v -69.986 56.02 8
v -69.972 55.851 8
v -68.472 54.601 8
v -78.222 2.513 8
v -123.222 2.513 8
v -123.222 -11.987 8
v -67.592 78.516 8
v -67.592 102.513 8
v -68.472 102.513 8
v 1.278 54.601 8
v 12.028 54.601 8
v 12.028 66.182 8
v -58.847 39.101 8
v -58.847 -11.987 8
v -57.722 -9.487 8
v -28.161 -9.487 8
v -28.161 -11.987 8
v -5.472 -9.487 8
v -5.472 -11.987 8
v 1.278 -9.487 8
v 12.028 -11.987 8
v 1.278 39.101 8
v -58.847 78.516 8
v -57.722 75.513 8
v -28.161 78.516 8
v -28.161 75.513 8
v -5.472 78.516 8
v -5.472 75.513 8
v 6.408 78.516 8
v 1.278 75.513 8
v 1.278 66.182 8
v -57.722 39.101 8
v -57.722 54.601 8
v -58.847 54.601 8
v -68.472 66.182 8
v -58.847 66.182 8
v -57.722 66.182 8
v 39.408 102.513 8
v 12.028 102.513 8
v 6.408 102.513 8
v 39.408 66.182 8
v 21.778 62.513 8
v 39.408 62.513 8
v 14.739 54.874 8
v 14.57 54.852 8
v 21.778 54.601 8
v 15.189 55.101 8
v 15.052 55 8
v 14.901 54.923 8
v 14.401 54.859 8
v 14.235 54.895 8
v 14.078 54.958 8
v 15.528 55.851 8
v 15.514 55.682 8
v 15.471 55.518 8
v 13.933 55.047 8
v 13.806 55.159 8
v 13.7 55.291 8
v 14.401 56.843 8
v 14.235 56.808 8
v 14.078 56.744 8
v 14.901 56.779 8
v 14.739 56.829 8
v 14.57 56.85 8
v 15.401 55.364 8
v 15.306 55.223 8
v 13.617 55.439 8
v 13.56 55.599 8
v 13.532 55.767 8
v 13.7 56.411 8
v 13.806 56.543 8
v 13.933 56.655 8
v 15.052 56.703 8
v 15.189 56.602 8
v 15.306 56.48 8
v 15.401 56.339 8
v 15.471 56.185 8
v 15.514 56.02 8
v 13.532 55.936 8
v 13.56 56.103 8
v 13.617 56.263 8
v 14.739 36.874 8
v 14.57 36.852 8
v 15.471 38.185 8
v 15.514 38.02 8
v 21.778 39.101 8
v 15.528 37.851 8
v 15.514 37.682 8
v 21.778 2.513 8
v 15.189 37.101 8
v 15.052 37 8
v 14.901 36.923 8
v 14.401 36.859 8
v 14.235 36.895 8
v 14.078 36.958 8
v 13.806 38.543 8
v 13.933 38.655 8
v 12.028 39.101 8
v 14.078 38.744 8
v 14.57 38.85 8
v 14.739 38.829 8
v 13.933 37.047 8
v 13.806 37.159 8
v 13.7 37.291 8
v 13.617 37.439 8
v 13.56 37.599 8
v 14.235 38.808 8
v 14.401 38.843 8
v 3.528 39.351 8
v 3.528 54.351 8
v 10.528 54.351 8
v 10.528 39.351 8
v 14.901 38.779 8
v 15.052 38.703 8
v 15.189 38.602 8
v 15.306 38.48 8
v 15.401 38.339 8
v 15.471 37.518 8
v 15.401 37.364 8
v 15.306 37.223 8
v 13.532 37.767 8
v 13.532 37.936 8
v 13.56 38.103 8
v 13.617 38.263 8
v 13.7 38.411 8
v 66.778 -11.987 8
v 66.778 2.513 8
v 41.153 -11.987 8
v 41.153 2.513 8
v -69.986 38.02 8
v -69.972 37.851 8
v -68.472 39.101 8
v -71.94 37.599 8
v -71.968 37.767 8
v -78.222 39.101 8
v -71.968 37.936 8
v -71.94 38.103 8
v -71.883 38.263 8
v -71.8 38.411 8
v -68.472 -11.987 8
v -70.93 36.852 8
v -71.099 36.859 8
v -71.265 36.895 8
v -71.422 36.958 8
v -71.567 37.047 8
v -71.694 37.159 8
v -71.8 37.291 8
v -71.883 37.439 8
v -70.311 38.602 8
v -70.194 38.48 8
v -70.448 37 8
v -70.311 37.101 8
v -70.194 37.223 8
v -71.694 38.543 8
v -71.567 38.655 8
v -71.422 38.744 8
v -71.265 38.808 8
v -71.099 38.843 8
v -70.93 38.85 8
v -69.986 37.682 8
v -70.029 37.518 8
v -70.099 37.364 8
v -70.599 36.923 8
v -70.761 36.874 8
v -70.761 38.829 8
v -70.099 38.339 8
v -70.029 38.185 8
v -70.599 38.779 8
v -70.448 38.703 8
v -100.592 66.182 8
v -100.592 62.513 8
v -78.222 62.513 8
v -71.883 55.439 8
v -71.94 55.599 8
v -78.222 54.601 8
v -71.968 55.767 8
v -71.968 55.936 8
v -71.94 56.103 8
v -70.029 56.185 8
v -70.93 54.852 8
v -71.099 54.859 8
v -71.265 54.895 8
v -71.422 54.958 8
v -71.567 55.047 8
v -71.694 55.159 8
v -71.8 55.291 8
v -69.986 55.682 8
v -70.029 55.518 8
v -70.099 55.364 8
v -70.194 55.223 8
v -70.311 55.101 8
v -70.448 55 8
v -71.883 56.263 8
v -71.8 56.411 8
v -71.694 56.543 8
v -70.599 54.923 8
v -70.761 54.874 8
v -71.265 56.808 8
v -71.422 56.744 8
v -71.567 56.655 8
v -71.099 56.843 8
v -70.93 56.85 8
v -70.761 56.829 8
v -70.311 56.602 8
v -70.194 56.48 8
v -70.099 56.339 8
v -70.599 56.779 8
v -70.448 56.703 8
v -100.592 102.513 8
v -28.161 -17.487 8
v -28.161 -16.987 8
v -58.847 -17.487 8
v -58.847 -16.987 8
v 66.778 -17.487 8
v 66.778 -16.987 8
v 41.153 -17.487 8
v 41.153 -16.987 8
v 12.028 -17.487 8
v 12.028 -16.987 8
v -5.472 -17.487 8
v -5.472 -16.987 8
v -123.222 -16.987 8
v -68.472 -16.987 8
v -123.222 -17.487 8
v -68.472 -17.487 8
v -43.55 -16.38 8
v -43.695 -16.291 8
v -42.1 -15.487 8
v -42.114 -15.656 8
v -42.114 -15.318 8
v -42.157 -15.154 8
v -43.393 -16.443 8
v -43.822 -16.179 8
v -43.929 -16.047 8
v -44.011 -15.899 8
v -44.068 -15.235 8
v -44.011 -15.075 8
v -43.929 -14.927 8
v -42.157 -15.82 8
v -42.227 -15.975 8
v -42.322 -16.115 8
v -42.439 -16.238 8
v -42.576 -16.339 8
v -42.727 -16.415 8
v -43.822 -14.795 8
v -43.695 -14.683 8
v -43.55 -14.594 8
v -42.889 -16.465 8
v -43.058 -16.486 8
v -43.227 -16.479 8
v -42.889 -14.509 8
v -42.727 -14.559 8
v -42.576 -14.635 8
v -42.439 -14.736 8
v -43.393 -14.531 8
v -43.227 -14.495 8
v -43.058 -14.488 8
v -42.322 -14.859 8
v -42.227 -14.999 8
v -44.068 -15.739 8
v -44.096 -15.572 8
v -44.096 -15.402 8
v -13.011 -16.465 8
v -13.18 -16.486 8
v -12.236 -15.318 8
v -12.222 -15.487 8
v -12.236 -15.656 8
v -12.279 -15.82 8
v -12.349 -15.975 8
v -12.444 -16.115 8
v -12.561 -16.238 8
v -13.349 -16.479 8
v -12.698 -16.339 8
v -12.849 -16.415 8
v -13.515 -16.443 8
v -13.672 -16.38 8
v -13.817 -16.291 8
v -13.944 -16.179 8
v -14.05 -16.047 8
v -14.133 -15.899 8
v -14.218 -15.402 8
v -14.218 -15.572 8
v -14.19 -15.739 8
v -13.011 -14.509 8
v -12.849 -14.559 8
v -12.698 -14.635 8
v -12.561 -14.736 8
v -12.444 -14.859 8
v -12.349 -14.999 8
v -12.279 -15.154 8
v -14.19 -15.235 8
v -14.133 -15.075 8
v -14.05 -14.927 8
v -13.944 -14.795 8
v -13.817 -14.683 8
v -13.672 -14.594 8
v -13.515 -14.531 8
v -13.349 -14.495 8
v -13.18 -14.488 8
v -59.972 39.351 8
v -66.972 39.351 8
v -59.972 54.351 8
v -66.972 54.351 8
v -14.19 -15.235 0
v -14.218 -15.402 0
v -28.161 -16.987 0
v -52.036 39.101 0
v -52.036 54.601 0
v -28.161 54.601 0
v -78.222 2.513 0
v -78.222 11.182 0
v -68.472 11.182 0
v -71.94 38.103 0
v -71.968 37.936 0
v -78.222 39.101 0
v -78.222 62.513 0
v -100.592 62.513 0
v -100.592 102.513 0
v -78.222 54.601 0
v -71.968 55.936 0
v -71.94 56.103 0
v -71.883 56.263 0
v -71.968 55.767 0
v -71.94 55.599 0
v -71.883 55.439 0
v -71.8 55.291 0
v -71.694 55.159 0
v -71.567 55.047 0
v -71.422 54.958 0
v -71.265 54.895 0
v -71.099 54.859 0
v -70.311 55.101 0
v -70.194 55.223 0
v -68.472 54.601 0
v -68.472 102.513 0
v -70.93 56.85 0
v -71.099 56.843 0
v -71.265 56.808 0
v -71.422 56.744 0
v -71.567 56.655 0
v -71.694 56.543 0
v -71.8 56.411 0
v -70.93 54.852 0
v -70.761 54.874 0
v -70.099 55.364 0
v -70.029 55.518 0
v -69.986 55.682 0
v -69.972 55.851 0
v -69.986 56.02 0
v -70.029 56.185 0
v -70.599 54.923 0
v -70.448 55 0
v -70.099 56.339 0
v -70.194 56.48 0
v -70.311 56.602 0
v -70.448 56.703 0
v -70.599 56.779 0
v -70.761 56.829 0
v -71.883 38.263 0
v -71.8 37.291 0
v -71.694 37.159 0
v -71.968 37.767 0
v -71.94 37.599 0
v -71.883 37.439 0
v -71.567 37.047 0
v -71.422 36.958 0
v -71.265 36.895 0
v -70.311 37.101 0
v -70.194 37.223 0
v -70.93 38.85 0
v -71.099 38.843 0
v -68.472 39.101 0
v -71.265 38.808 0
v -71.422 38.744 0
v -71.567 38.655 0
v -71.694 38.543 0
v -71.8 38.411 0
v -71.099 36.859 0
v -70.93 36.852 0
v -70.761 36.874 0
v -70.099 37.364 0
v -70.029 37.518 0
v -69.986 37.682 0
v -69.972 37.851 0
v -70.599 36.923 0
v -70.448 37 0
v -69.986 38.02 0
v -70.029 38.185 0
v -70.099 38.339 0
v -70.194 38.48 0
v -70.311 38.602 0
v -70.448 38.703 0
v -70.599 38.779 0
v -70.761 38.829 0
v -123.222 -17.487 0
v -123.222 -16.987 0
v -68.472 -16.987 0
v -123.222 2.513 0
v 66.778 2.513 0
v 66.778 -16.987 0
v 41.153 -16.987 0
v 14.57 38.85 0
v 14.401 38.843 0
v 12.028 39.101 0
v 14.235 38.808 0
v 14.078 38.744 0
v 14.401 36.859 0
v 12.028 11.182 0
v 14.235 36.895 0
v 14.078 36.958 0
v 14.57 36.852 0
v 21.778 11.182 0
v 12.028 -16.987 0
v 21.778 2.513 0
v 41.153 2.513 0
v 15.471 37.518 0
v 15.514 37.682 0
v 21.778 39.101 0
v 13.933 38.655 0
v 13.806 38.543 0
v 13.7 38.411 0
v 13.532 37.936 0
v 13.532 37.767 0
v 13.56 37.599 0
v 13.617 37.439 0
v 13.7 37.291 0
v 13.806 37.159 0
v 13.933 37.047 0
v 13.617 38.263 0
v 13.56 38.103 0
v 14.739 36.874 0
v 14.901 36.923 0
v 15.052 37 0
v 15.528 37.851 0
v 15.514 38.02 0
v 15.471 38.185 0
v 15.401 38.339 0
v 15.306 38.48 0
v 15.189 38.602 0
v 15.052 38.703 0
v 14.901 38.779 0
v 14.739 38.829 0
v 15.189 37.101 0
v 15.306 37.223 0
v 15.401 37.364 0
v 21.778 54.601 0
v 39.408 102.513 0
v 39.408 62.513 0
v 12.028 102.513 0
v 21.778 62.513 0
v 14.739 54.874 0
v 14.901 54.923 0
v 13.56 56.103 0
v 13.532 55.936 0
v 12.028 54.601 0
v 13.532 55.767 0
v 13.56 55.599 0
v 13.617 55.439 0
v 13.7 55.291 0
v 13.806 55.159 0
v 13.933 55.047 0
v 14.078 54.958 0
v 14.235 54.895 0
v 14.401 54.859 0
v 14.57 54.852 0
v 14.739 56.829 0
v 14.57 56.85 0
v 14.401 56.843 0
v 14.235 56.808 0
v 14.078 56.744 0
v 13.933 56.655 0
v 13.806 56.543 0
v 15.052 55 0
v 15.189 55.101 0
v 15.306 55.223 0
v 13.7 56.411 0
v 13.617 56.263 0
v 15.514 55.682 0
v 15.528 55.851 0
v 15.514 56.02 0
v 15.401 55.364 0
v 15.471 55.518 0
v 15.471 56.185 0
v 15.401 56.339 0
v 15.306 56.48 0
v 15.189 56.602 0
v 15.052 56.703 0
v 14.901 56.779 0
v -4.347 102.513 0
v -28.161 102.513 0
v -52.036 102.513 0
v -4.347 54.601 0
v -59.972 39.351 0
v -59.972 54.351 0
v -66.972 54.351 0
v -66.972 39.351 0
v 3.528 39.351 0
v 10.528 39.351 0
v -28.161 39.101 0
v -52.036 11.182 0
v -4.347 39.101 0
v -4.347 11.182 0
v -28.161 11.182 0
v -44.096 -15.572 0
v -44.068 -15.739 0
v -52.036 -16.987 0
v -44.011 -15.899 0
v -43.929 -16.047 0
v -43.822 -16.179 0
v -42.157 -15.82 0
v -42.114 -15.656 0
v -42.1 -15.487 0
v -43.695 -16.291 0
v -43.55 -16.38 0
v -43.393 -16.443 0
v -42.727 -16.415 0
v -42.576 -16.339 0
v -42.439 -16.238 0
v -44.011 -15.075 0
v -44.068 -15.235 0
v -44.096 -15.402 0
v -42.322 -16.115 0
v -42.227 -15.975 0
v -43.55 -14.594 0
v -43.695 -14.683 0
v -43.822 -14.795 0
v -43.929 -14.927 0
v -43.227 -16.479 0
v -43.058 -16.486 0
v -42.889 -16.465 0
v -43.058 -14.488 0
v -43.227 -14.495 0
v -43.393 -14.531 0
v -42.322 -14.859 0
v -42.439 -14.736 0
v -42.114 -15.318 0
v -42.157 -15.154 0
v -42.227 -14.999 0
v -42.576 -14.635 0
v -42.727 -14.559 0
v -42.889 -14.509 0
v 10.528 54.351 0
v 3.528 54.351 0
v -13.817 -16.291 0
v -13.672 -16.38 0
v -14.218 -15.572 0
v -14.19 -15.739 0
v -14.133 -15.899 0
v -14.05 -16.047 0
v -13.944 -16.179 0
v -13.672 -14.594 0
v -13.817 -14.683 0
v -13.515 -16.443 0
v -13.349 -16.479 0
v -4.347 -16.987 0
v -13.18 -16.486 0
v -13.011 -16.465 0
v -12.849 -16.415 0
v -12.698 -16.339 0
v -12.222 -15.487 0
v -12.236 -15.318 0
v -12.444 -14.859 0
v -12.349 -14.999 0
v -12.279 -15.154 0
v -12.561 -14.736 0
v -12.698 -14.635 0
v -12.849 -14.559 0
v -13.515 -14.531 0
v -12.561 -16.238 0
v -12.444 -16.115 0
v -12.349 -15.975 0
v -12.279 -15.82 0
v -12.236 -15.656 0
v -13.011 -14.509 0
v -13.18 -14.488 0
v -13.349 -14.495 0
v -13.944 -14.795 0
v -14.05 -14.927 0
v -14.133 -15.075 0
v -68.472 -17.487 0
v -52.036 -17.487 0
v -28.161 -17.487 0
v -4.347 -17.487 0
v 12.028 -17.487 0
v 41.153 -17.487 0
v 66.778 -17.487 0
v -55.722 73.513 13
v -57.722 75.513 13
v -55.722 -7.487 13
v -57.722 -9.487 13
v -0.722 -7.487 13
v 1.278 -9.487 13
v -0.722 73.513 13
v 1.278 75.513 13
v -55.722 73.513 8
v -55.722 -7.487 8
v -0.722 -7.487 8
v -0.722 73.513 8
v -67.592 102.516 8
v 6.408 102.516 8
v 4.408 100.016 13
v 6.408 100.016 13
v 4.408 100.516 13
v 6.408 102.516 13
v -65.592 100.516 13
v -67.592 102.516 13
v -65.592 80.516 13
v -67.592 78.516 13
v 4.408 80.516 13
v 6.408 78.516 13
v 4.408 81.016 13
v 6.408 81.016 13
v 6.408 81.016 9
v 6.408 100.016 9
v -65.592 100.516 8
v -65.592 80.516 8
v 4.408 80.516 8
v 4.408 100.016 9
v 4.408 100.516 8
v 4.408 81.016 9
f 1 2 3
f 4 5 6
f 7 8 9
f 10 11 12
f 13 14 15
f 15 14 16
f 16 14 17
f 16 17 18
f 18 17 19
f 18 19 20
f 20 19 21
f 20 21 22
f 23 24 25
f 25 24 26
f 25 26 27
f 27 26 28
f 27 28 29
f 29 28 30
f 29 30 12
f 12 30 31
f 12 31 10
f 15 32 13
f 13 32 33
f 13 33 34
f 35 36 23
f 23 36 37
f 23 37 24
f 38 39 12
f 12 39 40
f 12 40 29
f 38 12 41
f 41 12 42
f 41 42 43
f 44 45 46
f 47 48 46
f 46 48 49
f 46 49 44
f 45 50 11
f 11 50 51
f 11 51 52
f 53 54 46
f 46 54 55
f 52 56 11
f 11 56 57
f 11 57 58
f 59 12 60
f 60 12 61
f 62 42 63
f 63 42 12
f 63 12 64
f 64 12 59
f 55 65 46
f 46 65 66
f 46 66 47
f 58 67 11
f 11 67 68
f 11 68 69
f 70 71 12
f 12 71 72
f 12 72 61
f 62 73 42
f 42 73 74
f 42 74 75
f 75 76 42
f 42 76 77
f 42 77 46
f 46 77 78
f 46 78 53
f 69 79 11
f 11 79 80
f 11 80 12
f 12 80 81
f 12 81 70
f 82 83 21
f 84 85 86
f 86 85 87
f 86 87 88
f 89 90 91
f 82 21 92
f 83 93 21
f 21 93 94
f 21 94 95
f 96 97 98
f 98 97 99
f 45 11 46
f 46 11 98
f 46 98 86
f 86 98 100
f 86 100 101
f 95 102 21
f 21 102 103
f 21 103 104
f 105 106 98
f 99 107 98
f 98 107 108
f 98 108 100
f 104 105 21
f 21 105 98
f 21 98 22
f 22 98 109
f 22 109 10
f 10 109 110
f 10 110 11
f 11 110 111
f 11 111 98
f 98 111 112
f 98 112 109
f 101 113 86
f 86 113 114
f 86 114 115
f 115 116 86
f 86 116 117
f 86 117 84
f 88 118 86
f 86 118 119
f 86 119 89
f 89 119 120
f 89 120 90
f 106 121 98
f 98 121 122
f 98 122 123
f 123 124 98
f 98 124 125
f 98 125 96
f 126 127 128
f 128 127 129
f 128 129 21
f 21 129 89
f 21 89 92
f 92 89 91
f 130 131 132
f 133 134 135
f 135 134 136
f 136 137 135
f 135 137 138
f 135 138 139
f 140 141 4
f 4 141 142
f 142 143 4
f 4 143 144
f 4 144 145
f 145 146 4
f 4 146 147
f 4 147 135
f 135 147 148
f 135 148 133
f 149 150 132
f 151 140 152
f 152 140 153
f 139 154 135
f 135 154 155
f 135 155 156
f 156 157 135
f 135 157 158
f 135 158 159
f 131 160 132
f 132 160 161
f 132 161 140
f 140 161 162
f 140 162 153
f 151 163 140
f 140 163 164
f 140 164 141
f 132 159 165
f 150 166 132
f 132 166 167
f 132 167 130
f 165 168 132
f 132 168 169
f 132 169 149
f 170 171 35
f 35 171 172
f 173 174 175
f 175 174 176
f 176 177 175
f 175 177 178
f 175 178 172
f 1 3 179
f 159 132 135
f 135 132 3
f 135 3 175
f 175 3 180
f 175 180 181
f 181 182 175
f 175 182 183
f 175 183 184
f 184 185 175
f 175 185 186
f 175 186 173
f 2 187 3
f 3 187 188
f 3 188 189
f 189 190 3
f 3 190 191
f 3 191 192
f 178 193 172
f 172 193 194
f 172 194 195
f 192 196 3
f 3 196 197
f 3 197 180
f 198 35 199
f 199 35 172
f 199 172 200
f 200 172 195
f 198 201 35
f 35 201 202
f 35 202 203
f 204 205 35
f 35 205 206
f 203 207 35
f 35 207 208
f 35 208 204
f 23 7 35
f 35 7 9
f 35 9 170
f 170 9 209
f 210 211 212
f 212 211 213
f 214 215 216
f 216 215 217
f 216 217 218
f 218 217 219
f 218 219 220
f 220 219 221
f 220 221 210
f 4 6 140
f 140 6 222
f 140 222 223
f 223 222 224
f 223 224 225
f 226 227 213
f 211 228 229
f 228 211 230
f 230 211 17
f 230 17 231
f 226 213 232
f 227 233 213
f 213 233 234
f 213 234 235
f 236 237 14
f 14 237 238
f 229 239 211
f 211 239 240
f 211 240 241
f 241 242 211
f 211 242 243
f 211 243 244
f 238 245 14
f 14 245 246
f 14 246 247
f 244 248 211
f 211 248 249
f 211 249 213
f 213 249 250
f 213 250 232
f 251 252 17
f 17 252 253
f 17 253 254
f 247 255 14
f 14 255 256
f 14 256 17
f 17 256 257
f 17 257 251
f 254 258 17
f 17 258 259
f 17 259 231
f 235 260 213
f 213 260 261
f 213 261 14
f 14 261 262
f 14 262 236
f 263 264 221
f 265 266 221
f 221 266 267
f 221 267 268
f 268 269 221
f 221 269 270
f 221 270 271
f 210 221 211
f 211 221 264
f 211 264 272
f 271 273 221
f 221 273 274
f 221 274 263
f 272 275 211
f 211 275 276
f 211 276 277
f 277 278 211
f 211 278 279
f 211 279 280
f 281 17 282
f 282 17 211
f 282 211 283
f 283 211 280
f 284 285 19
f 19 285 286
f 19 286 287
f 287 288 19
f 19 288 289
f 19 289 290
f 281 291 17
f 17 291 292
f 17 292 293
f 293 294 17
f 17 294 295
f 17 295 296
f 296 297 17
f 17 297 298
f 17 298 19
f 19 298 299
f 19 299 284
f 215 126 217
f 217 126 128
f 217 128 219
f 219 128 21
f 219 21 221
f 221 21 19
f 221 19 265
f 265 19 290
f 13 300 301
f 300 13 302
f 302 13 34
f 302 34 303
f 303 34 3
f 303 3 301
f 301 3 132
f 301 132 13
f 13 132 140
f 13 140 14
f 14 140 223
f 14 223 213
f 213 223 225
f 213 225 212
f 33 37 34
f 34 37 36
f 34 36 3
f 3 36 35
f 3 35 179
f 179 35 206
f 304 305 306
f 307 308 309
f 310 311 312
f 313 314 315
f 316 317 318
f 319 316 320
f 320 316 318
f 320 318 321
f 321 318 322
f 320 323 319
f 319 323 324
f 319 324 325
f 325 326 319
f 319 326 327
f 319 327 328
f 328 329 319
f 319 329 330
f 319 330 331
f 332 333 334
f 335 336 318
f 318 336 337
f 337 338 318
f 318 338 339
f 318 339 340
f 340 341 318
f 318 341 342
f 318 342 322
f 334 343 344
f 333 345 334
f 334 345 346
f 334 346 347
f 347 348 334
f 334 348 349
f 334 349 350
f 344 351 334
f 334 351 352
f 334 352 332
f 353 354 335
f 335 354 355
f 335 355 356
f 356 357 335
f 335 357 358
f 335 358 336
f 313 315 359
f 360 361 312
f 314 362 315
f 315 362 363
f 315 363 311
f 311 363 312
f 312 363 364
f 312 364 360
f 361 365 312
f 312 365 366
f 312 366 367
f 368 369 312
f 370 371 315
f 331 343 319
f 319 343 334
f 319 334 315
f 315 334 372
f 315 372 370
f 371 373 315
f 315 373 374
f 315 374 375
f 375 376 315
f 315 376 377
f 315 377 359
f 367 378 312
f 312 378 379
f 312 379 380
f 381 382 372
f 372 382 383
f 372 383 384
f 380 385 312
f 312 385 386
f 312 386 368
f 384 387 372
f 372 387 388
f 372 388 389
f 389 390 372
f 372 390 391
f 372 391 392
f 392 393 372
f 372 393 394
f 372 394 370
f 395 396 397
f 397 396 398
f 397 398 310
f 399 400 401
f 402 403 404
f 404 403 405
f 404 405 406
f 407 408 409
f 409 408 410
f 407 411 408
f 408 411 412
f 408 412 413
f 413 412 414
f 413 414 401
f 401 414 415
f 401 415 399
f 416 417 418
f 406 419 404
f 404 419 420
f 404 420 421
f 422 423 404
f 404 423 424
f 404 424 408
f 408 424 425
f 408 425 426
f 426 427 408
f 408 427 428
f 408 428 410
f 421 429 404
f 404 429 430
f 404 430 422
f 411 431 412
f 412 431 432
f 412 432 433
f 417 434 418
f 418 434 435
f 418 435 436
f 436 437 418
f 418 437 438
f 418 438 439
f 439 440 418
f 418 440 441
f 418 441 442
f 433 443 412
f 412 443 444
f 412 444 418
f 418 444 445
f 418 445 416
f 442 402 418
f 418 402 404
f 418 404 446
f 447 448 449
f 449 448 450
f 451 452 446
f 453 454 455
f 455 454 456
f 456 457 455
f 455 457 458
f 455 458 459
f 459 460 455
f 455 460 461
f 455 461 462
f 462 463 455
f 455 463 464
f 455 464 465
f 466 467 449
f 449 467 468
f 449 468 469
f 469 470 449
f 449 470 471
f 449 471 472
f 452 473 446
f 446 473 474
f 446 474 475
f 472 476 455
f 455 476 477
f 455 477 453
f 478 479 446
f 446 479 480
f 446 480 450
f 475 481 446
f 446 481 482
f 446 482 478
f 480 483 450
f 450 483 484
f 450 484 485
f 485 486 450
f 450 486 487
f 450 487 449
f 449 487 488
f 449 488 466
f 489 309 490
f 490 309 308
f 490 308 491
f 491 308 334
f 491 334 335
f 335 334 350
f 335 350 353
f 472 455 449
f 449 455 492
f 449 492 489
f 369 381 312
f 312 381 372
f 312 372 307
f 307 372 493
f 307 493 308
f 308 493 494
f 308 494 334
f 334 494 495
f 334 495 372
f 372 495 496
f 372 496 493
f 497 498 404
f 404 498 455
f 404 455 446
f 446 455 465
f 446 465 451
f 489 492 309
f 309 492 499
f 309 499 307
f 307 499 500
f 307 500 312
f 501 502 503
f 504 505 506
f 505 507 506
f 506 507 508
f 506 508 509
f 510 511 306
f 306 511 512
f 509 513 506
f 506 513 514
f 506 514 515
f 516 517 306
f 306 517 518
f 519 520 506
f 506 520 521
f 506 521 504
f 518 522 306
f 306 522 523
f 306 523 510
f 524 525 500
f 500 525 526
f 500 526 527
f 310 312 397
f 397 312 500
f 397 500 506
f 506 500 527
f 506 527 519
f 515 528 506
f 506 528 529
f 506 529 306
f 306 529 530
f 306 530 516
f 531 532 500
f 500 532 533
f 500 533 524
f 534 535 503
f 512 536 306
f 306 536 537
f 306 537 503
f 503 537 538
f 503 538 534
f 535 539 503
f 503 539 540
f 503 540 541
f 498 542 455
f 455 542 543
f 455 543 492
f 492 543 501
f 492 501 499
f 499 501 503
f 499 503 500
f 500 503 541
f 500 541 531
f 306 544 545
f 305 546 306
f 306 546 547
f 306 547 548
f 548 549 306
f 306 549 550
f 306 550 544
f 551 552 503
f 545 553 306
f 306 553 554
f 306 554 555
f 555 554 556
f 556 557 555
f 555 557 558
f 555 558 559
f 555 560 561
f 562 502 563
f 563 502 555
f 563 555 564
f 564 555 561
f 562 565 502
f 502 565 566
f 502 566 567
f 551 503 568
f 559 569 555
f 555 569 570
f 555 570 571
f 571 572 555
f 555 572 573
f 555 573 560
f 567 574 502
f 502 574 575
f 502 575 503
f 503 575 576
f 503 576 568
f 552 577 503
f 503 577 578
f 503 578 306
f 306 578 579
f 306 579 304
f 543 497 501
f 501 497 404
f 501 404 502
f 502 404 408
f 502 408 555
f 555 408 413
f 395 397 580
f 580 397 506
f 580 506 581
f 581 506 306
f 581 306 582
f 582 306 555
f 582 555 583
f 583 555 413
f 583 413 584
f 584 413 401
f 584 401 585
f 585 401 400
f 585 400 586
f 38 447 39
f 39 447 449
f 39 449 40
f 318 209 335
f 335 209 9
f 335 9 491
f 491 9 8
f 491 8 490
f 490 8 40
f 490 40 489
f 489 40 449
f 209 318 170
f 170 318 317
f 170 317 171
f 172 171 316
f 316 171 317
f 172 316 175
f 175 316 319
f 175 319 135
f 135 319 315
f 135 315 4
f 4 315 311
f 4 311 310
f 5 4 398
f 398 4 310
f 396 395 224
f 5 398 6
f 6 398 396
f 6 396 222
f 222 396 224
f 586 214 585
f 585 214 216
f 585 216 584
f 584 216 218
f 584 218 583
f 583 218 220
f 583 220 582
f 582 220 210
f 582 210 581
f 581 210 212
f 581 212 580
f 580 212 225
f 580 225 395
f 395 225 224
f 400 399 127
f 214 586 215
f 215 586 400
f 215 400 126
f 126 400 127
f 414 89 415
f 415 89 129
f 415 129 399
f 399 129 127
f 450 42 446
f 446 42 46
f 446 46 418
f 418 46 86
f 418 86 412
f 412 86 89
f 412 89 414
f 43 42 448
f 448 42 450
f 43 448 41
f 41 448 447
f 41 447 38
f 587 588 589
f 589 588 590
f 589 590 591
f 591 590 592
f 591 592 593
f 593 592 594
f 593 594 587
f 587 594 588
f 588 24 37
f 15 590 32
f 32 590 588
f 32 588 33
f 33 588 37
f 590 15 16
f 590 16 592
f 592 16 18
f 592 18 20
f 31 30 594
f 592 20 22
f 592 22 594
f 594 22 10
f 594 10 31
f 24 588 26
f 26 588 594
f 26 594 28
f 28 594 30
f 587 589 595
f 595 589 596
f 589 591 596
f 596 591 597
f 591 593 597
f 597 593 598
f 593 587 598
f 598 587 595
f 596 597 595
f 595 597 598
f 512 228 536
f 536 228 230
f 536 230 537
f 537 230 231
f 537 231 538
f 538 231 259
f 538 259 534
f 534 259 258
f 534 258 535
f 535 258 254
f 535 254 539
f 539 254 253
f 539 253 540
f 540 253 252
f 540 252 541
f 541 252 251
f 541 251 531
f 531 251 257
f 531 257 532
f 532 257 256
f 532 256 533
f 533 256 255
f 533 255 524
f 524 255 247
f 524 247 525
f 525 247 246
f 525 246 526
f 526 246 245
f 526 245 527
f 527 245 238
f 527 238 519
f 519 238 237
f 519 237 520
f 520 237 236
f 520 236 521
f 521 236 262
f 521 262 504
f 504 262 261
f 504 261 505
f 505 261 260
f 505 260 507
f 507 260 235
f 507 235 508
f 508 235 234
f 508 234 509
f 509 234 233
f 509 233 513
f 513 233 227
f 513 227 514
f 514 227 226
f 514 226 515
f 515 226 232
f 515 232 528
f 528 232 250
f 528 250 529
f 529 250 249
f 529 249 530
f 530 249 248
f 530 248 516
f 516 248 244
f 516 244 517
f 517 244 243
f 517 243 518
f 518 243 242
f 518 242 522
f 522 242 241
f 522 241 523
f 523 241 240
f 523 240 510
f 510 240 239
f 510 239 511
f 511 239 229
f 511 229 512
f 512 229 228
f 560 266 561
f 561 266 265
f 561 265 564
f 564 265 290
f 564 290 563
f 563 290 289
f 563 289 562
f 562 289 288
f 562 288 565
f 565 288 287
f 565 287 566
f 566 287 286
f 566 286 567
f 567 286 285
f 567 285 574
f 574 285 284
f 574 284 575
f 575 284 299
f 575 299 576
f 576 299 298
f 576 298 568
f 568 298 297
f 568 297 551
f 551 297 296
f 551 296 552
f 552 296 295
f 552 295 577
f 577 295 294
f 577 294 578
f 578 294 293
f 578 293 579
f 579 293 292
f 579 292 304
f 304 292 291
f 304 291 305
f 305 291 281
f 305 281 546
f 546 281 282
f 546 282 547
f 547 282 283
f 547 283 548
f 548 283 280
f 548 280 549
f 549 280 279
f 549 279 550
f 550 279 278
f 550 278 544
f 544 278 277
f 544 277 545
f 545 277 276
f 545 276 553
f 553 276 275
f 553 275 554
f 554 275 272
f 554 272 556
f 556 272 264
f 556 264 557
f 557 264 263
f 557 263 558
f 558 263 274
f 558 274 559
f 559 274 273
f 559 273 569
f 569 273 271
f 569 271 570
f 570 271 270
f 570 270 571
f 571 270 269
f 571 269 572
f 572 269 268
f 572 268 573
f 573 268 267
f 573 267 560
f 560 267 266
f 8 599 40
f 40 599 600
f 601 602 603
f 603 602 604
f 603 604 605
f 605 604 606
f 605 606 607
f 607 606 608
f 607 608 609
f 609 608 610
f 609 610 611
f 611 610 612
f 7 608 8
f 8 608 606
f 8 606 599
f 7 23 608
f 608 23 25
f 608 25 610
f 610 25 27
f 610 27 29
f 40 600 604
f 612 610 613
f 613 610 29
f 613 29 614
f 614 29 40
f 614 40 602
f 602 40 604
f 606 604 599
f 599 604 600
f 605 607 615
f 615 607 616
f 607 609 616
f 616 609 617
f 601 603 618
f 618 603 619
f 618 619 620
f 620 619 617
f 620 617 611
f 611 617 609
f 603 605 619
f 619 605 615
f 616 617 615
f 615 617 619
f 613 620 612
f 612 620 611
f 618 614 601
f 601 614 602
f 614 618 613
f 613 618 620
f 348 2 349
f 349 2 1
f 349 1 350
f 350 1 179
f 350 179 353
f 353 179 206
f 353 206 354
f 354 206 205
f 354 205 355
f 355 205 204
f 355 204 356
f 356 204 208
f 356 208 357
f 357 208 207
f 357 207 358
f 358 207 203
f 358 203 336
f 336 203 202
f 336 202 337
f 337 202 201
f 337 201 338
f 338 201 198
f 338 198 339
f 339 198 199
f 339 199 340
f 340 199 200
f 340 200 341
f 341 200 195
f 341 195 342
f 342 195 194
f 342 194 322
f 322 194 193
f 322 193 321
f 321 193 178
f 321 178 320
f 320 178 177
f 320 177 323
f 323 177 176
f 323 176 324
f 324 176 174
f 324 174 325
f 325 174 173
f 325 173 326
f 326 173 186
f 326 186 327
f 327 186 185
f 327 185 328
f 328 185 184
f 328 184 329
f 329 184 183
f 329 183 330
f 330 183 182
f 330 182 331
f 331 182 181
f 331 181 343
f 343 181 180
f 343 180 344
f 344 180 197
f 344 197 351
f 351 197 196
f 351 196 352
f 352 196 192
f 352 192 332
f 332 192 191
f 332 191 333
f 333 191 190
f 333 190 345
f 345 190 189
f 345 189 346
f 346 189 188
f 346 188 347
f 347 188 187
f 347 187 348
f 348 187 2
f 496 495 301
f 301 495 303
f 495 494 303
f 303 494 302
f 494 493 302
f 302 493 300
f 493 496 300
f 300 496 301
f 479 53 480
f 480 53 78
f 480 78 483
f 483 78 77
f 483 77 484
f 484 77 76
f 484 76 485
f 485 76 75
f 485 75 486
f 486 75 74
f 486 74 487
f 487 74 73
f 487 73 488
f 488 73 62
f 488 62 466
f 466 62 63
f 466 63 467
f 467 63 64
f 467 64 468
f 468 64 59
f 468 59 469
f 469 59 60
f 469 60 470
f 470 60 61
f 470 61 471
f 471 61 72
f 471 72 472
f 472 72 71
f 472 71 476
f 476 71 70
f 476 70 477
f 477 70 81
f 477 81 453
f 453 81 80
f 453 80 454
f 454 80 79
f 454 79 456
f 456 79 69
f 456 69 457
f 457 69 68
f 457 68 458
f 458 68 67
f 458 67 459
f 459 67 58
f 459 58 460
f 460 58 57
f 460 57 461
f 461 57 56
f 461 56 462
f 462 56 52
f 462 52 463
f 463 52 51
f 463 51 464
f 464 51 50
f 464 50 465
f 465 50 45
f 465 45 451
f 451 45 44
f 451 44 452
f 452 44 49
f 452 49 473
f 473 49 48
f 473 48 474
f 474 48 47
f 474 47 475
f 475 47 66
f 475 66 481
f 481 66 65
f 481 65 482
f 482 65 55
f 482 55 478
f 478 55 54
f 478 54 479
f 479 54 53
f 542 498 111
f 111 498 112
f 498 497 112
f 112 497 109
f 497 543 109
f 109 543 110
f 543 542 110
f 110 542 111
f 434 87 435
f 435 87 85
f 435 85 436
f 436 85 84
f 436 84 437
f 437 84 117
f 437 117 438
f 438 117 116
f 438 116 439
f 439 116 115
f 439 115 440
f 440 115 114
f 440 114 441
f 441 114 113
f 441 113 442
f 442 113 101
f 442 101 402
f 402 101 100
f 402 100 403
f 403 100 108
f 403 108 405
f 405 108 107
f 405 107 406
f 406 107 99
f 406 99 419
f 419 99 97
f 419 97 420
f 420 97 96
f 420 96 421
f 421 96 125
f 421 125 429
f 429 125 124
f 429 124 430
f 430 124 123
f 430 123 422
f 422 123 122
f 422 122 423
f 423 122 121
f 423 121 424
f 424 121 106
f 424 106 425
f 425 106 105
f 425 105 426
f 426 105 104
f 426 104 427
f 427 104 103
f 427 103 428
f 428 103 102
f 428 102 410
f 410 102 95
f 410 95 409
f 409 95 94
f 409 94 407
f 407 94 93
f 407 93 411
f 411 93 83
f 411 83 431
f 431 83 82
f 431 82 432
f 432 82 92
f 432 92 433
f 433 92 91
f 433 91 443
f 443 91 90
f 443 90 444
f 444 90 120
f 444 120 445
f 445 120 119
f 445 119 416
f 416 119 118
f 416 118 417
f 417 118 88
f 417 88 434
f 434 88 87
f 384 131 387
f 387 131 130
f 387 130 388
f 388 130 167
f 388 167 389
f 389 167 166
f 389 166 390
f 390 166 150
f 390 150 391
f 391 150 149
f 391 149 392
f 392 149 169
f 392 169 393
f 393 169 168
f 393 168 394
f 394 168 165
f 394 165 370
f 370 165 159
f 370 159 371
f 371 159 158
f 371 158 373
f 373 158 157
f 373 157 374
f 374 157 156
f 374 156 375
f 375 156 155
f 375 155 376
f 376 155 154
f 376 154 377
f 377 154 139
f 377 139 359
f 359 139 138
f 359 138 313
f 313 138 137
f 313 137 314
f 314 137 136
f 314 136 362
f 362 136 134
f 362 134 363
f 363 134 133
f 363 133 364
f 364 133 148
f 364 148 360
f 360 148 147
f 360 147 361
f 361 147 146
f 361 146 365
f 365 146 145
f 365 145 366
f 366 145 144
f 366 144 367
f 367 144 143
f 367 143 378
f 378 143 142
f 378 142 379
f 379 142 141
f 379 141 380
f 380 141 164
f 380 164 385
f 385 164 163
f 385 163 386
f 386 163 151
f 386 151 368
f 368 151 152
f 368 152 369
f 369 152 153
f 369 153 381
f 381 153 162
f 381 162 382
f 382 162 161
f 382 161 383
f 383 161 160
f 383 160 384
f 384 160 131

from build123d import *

# Parameters (mm, degrees)
RESSALTO_EXTRUS_O1_DEPTH = 8
ESBO_O2_W                = 59
ESBO_O2_H                = 85
ESBO_O2_W_2              = 55
ESBO_O2_H_2              = 81
RESSALTO_EXTRUS_O2_DEPTH = 5
ESBO_O3_R                = 1
CORTE_EXTRUS_O1_DEPTH    = 161.48856651
ESBO_O5_W                = 74
ESBO_O5_H                = 24
ESBO_O5_W_2              = 70
ESBO_O5_H_2              = 20
RESSALTO_EXTRUS_O4_DEPTH = 5
ESBO_O6_W                = 2
ESBO_O6_H                = 19
CORTE_EXTRUS_O2_DEPTH    = 4
ESBO_O7_R                = 1
ESBO_O7_W                = 7
ESBO_O7_H                = 15
CORTE_EXTRUS_O4_DEPTH    = 161.490657476


with BuildPart() as part:
    # Esboço1 → Ressalto-extrusão1 (new body)
    with BuildSketch(Plane.XY):
        Polygon((39.408169461, 102.513026677), (39.408169461, 62.513026677), (21.778007881, 62.513026677), (21.778007881, 2.513026677), (66.778007881, 2.513026677), (66.778007881, -17.486973323), (-123.221992119, -17.486973323), (-123.221992119, 2.513026677), (-78.221992119, 2.513026677), (-78.221992119, 62.513026677), (-100.591830539, 62.513026677), (-100.591830539, 102.513026677), align=None)
    extrude(amount=RESSALTO_EXTRUS_O1_DEPTH)

    # Esboço2 → Ressalto-extrusão2 (add)
    with BuildSketch(Plane.XY.offset(8)):
        with Locations((-28.221992119, 33.013026677)):
            Rectangle(ESBO_O2_W, ESBO_O2_H)
        with Locations((-28.221992119, 33.013026677)):
            Rectangle(ESBO_O2_W_2, ESBO_O2_H_2, mode=Mode.SUBTRACT)
    extrude(amount=RESSALTO_EXTRUS_O2_DEPTH)

    # Esboço3 → Corte-extrusão1 (cut, through all)
    with BuildSketch(Plane.XY.offset(8)):
        with Locations((-13.221992119, -15.486973323)):
            Circle(ESBO_O3_R)
        with Locations((-43.099997489, -15.486973323)):
            Circle(ESBO_O3_R)
    extrude(amount=-CORTE_EXTRUS_O1_DEPTH, mode=Mode.SUBTRACT)

    # Esboço5 → Ressalto-extrusão4 (add)
    with BuildSketch(Plane.XY.offset(8)):
        with Locations((-30.591830539, 90.516300144)):
            Rectangle(ESBO_O5_W, ESBO_O5_H)
        with Locations((-30.591830539, 90.516300144)):
            Rectangle(ESBO_O5_W_2, ESBO_O5_H_2, mode=Mode.SUBTRACT)
    extrude(amount=RESSALTO_EXTRUS_O4_DEPTH)

    # Esboço6 → Corte-extrusão2 (cut)
    with BuildSketch(Plane.XY.offset(13)):
        with Locations((5.408169461, 90.516300144)):
            Rectangle(ESBO_O6_W, ESBO_O6_H)
    extrude(amount=-CORTE_EXTRUS_O2_DEPTH, mode=Mode.SUBTRACT)

    # Esboço7 → Corte-extrusão4 (cut, through all)
    with BuildSketch(Plane.XY.offset(8)):
        with Locations((-70.971992119, 55.851364498)):
            Circle(ESBO_O7_R)
        with Locations((14.528007881, 37.851364498)):
            Circle(ESBO_O7_R)
        with Locations((7.028007881, 46.851364498)):
            Rectangle(ESBO_O7_W, ESBO_O7_H)
        with Locations((14.528007881, 55.851364498)):
            Circle(ESBO_O7_R)
        with Locations((-63.471992119, 46.851364498)):
            Rectangle(ESBO_O7_W, ESBO_O7_H)
        with Locations((-70.971992119, 37.851364498)):
            Circle(ESBO_O7_R)
    extrude(amount=-CORTE_EXTRUS_O4_DEPTH, mode=Mode.SUBTRACT)


solid = part.part
